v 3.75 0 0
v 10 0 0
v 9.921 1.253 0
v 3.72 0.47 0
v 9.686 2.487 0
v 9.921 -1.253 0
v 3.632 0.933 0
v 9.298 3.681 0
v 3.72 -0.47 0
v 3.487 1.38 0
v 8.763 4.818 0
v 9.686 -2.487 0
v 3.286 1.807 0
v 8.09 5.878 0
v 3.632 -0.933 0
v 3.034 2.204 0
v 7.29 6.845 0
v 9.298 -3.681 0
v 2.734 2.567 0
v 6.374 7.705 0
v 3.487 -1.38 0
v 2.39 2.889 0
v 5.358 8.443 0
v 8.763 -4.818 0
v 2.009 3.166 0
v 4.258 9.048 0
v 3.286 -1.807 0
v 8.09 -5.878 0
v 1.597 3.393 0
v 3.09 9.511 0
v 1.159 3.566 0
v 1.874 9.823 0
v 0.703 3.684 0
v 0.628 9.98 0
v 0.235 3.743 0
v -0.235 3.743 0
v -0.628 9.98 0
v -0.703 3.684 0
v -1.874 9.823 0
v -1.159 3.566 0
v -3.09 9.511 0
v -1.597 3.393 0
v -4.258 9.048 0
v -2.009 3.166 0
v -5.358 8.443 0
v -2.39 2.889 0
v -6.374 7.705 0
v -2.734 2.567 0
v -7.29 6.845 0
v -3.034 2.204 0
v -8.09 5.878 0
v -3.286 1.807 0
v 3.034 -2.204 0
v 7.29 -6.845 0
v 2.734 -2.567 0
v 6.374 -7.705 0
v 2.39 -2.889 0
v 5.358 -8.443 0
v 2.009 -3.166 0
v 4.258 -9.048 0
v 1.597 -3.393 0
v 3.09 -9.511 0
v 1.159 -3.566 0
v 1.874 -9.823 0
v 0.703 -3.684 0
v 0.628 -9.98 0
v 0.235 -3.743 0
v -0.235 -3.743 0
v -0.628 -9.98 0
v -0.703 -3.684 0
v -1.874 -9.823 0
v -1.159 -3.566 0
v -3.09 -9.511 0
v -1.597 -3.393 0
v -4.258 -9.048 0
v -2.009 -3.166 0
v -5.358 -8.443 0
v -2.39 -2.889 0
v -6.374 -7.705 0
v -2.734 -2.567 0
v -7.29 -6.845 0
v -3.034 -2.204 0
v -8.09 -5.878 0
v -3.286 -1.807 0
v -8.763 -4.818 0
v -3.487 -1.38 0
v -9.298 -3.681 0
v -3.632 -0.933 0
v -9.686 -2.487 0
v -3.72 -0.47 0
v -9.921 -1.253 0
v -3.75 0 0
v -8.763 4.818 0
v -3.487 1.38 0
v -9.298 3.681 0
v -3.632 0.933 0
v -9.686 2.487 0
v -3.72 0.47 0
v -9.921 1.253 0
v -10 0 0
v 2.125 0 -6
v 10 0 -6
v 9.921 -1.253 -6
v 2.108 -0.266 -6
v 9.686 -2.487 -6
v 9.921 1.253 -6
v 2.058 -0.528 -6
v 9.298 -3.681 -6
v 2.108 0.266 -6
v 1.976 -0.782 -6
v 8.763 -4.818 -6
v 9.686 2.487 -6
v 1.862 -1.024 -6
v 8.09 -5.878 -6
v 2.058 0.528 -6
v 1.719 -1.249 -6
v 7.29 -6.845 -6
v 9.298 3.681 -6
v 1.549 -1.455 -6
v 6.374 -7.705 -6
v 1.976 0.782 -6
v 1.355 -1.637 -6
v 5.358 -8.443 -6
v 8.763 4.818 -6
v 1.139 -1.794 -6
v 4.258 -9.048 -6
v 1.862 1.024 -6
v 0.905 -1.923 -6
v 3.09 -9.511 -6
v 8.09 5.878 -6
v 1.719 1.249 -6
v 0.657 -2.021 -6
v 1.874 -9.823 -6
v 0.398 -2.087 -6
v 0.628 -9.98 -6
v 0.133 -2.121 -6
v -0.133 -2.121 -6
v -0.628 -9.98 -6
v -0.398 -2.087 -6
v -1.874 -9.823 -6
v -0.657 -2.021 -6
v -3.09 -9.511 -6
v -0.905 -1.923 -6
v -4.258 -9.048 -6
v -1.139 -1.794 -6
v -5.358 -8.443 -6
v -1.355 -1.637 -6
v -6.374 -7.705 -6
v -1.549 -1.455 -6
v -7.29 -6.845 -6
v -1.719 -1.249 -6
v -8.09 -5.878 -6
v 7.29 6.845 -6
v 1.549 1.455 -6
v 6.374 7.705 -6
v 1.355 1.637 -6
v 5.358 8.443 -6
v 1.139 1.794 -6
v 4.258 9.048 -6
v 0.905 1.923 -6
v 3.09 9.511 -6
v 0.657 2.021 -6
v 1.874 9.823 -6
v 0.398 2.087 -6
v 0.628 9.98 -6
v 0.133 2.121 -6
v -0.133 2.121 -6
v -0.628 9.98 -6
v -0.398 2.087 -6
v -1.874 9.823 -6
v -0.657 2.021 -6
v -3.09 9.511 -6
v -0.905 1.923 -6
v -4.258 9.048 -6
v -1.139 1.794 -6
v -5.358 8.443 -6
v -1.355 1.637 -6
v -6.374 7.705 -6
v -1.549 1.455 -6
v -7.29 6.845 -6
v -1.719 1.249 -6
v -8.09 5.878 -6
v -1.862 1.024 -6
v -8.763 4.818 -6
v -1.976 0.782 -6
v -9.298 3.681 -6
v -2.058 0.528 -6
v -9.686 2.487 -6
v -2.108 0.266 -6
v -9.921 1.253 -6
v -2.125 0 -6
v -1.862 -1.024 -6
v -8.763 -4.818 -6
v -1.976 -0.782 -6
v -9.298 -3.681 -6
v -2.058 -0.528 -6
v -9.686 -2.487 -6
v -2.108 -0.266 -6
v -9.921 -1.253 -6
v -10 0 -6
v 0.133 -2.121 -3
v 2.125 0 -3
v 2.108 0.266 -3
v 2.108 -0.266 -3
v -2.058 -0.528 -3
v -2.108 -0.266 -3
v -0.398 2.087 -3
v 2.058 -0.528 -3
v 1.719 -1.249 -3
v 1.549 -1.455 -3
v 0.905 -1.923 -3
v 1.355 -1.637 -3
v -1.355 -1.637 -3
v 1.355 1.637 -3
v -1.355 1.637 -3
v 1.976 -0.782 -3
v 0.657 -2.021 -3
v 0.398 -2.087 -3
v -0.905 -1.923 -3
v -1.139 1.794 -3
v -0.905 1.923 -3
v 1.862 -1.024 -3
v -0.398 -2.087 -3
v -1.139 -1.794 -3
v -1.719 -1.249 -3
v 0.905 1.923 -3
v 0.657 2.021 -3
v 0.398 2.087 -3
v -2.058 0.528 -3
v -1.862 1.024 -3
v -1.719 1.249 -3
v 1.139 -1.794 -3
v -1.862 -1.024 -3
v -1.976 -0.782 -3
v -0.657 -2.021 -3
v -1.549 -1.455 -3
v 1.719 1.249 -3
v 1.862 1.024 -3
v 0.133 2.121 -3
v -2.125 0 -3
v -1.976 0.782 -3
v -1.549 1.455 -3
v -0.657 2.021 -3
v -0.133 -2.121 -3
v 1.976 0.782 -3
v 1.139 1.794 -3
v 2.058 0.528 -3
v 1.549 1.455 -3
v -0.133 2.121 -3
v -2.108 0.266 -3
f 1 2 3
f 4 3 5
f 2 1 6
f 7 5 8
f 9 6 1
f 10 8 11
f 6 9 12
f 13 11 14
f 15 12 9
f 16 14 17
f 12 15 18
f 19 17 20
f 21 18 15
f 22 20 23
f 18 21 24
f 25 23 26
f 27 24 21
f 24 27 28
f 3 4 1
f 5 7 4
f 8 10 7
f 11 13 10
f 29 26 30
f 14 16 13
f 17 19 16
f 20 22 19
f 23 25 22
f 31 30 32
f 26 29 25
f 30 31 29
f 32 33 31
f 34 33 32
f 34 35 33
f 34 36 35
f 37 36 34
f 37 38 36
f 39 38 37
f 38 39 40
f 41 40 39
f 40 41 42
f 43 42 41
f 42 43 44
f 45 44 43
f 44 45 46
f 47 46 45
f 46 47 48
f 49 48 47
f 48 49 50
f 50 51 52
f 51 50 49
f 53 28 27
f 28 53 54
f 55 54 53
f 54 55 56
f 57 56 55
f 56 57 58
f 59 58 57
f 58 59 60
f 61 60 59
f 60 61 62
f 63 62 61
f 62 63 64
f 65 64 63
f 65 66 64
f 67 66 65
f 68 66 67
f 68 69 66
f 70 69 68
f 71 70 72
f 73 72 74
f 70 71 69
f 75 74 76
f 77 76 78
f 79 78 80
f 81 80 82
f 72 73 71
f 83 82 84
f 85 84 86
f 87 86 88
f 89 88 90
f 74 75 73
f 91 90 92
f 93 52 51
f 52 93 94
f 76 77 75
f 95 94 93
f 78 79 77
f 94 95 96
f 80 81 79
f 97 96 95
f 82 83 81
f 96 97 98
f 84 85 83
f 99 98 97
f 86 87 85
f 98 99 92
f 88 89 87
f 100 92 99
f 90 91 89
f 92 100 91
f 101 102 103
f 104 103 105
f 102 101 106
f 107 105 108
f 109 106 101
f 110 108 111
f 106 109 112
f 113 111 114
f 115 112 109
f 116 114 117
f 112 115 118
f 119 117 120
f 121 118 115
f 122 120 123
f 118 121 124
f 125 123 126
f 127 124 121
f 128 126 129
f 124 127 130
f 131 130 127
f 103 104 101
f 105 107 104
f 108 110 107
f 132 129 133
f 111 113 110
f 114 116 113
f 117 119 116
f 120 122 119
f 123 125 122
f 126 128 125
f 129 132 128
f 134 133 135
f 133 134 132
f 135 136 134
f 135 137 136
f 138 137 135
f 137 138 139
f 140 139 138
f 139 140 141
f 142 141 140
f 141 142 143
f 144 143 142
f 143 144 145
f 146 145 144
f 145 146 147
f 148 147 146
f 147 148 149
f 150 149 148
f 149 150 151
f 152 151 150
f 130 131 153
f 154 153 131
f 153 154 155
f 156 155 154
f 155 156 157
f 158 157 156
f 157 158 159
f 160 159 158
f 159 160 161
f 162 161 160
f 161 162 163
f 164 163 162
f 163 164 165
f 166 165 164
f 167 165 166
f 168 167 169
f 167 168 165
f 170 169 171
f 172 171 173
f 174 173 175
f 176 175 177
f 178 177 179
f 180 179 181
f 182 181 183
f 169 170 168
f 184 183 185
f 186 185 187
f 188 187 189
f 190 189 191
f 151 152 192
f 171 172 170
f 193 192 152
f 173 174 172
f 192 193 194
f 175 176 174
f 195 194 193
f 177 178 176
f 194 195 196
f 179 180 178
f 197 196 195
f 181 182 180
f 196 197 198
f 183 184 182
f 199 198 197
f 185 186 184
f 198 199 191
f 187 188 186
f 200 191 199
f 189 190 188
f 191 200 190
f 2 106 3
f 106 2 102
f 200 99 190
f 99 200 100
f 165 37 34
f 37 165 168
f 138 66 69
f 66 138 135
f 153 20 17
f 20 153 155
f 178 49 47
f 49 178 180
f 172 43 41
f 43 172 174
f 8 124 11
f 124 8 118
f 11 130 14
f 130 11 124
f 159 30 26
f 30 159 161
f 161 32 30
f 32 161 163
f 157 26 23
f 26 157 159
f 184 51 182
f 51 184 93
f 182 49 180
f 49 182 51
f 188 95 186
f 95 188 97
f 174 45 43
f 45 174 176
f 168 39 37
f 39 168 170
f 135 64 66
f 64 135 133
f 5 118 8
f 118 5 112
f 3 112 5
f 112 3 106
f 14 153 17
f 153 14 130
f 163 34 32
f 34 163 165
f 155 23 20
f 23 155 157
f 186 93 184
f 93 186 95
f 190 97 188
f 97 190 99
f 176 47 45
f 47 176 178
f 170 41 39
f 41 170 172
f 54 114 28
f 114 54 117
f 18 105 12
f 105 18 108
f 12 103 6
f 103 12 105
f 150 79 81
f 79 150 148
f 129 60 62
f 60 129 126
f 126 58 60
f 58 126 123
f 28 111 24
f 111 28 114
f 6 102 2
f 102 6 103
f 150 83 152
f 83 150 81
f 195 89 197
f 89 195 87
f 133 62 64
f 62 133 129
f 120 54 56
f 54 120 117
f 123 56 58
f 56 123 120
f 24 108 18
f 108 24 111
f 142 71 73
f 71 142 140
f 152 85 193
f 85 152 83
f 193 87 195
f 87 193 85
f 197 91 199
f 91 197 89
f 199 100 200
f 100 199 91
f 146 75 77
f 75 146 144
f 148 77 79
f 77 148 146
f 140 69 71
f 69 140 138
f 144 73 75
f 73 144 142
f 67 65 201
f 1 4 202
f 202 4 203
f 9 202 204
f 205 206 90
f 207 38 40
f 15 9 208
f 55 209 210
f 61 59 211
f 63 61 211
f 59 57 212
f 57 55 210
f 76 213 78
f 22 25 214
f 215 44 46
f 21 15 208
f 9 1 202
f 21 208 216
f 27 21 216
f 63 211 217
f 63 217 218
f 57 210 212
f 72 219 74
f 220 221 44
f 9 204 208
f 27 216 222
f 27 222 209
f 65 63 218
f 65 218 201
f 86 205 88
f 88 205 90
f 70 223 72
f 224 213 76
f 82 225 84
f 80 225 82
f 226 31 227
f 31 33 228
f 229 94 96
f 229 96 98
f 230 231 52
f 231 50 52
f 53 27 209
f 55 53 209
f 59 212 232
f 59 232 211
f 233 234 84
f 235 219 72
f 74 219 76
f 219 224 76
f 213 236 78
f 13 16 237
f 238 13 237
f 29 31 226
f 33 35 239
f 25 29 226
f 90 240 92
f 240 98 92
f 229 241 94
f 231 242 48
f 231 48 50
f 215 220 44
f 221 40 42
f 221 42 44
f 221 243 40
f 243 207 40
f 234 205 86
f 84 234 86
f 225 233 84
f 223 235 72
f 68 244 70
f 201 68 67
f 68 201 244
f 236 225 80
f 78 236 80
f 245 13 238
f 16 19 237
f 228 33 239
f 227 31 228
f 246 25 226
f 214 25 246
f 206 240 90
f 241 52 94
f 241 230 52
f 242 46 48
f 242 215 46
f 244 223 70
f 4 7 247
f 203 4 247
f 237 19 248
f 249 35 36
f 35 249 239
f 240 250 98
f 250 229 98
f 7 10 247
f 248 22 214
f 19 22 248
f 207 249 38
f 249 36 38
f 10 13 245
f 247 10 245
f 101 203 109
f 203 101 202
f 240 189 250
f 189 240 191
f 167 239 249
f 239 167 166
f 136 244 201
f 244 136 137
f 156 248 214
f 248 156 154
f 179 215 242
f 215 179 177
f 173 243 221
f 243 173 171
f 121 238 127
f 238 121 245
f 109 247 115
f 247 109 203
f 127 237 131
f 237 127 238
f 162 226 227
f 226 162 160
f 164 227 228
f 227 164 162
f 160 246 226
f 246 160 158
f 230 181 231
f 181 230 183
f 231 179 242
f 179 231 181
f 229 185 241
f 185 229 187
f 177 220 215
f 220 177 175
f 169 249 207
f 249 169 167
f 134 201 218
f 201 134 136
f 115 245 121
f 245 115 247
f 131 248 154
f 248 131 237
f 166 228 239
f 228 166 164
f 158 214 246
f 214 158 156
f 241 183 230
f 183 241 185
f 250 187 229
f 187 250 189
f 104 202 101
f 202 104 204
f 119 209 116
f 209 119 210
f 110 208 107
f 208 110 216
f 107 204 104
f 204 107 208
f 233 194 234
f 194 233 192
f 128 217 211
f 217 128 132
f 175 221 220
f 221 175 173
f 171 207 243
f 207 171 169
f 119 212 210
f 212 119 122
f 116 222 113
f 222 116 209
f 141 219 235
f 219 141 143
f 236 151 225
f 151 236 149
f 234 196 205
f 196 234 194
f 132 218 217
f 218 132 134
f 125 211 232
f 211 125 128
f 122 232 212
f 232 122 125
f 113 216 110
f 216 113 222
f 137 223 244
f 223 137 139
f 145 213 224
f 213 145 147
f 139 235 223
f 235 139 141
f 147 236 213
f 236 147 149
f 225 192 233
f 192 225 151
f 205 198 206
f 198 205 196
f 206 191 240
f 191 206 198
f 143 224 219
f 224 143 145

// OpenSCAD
$fn = 50;


difference() {
	union() {
		translate(v = [0, 0, -6.0000000000]) {
			cylinder(h = 6, r = 7.0000000000);
		}
		translate(v = [0, 0, -6.0000000000]) {
			cylinder(h = 6, r = 10.0000000000);
		}
	}
	union() {
		translate(v = [0, 0, 0]) {
			rotate(a = [0, 0, 0]) {
				difference() {
					union() {
						#translate(v = [0, 0, -6.0000000000]) {
							cylinder(h = 6, r = 2.0000000000);
						}
						#translate(v = [0, 0, -3]) {
							cylinder(h = 3, r1 = 2.1250000000, r2 = 3.7500000000);
						}
						#translate(v = [0, 0, -6.0000000000]) {
							cylinder(h = 6, r = 2.1250000000);
						}
						#translate(v = [0, 0, -6.0000000000]) {
							cylinder(h = 6, r = 2.0000000000);
						}
					}
					union();
				}
			}
		}
	}
}
